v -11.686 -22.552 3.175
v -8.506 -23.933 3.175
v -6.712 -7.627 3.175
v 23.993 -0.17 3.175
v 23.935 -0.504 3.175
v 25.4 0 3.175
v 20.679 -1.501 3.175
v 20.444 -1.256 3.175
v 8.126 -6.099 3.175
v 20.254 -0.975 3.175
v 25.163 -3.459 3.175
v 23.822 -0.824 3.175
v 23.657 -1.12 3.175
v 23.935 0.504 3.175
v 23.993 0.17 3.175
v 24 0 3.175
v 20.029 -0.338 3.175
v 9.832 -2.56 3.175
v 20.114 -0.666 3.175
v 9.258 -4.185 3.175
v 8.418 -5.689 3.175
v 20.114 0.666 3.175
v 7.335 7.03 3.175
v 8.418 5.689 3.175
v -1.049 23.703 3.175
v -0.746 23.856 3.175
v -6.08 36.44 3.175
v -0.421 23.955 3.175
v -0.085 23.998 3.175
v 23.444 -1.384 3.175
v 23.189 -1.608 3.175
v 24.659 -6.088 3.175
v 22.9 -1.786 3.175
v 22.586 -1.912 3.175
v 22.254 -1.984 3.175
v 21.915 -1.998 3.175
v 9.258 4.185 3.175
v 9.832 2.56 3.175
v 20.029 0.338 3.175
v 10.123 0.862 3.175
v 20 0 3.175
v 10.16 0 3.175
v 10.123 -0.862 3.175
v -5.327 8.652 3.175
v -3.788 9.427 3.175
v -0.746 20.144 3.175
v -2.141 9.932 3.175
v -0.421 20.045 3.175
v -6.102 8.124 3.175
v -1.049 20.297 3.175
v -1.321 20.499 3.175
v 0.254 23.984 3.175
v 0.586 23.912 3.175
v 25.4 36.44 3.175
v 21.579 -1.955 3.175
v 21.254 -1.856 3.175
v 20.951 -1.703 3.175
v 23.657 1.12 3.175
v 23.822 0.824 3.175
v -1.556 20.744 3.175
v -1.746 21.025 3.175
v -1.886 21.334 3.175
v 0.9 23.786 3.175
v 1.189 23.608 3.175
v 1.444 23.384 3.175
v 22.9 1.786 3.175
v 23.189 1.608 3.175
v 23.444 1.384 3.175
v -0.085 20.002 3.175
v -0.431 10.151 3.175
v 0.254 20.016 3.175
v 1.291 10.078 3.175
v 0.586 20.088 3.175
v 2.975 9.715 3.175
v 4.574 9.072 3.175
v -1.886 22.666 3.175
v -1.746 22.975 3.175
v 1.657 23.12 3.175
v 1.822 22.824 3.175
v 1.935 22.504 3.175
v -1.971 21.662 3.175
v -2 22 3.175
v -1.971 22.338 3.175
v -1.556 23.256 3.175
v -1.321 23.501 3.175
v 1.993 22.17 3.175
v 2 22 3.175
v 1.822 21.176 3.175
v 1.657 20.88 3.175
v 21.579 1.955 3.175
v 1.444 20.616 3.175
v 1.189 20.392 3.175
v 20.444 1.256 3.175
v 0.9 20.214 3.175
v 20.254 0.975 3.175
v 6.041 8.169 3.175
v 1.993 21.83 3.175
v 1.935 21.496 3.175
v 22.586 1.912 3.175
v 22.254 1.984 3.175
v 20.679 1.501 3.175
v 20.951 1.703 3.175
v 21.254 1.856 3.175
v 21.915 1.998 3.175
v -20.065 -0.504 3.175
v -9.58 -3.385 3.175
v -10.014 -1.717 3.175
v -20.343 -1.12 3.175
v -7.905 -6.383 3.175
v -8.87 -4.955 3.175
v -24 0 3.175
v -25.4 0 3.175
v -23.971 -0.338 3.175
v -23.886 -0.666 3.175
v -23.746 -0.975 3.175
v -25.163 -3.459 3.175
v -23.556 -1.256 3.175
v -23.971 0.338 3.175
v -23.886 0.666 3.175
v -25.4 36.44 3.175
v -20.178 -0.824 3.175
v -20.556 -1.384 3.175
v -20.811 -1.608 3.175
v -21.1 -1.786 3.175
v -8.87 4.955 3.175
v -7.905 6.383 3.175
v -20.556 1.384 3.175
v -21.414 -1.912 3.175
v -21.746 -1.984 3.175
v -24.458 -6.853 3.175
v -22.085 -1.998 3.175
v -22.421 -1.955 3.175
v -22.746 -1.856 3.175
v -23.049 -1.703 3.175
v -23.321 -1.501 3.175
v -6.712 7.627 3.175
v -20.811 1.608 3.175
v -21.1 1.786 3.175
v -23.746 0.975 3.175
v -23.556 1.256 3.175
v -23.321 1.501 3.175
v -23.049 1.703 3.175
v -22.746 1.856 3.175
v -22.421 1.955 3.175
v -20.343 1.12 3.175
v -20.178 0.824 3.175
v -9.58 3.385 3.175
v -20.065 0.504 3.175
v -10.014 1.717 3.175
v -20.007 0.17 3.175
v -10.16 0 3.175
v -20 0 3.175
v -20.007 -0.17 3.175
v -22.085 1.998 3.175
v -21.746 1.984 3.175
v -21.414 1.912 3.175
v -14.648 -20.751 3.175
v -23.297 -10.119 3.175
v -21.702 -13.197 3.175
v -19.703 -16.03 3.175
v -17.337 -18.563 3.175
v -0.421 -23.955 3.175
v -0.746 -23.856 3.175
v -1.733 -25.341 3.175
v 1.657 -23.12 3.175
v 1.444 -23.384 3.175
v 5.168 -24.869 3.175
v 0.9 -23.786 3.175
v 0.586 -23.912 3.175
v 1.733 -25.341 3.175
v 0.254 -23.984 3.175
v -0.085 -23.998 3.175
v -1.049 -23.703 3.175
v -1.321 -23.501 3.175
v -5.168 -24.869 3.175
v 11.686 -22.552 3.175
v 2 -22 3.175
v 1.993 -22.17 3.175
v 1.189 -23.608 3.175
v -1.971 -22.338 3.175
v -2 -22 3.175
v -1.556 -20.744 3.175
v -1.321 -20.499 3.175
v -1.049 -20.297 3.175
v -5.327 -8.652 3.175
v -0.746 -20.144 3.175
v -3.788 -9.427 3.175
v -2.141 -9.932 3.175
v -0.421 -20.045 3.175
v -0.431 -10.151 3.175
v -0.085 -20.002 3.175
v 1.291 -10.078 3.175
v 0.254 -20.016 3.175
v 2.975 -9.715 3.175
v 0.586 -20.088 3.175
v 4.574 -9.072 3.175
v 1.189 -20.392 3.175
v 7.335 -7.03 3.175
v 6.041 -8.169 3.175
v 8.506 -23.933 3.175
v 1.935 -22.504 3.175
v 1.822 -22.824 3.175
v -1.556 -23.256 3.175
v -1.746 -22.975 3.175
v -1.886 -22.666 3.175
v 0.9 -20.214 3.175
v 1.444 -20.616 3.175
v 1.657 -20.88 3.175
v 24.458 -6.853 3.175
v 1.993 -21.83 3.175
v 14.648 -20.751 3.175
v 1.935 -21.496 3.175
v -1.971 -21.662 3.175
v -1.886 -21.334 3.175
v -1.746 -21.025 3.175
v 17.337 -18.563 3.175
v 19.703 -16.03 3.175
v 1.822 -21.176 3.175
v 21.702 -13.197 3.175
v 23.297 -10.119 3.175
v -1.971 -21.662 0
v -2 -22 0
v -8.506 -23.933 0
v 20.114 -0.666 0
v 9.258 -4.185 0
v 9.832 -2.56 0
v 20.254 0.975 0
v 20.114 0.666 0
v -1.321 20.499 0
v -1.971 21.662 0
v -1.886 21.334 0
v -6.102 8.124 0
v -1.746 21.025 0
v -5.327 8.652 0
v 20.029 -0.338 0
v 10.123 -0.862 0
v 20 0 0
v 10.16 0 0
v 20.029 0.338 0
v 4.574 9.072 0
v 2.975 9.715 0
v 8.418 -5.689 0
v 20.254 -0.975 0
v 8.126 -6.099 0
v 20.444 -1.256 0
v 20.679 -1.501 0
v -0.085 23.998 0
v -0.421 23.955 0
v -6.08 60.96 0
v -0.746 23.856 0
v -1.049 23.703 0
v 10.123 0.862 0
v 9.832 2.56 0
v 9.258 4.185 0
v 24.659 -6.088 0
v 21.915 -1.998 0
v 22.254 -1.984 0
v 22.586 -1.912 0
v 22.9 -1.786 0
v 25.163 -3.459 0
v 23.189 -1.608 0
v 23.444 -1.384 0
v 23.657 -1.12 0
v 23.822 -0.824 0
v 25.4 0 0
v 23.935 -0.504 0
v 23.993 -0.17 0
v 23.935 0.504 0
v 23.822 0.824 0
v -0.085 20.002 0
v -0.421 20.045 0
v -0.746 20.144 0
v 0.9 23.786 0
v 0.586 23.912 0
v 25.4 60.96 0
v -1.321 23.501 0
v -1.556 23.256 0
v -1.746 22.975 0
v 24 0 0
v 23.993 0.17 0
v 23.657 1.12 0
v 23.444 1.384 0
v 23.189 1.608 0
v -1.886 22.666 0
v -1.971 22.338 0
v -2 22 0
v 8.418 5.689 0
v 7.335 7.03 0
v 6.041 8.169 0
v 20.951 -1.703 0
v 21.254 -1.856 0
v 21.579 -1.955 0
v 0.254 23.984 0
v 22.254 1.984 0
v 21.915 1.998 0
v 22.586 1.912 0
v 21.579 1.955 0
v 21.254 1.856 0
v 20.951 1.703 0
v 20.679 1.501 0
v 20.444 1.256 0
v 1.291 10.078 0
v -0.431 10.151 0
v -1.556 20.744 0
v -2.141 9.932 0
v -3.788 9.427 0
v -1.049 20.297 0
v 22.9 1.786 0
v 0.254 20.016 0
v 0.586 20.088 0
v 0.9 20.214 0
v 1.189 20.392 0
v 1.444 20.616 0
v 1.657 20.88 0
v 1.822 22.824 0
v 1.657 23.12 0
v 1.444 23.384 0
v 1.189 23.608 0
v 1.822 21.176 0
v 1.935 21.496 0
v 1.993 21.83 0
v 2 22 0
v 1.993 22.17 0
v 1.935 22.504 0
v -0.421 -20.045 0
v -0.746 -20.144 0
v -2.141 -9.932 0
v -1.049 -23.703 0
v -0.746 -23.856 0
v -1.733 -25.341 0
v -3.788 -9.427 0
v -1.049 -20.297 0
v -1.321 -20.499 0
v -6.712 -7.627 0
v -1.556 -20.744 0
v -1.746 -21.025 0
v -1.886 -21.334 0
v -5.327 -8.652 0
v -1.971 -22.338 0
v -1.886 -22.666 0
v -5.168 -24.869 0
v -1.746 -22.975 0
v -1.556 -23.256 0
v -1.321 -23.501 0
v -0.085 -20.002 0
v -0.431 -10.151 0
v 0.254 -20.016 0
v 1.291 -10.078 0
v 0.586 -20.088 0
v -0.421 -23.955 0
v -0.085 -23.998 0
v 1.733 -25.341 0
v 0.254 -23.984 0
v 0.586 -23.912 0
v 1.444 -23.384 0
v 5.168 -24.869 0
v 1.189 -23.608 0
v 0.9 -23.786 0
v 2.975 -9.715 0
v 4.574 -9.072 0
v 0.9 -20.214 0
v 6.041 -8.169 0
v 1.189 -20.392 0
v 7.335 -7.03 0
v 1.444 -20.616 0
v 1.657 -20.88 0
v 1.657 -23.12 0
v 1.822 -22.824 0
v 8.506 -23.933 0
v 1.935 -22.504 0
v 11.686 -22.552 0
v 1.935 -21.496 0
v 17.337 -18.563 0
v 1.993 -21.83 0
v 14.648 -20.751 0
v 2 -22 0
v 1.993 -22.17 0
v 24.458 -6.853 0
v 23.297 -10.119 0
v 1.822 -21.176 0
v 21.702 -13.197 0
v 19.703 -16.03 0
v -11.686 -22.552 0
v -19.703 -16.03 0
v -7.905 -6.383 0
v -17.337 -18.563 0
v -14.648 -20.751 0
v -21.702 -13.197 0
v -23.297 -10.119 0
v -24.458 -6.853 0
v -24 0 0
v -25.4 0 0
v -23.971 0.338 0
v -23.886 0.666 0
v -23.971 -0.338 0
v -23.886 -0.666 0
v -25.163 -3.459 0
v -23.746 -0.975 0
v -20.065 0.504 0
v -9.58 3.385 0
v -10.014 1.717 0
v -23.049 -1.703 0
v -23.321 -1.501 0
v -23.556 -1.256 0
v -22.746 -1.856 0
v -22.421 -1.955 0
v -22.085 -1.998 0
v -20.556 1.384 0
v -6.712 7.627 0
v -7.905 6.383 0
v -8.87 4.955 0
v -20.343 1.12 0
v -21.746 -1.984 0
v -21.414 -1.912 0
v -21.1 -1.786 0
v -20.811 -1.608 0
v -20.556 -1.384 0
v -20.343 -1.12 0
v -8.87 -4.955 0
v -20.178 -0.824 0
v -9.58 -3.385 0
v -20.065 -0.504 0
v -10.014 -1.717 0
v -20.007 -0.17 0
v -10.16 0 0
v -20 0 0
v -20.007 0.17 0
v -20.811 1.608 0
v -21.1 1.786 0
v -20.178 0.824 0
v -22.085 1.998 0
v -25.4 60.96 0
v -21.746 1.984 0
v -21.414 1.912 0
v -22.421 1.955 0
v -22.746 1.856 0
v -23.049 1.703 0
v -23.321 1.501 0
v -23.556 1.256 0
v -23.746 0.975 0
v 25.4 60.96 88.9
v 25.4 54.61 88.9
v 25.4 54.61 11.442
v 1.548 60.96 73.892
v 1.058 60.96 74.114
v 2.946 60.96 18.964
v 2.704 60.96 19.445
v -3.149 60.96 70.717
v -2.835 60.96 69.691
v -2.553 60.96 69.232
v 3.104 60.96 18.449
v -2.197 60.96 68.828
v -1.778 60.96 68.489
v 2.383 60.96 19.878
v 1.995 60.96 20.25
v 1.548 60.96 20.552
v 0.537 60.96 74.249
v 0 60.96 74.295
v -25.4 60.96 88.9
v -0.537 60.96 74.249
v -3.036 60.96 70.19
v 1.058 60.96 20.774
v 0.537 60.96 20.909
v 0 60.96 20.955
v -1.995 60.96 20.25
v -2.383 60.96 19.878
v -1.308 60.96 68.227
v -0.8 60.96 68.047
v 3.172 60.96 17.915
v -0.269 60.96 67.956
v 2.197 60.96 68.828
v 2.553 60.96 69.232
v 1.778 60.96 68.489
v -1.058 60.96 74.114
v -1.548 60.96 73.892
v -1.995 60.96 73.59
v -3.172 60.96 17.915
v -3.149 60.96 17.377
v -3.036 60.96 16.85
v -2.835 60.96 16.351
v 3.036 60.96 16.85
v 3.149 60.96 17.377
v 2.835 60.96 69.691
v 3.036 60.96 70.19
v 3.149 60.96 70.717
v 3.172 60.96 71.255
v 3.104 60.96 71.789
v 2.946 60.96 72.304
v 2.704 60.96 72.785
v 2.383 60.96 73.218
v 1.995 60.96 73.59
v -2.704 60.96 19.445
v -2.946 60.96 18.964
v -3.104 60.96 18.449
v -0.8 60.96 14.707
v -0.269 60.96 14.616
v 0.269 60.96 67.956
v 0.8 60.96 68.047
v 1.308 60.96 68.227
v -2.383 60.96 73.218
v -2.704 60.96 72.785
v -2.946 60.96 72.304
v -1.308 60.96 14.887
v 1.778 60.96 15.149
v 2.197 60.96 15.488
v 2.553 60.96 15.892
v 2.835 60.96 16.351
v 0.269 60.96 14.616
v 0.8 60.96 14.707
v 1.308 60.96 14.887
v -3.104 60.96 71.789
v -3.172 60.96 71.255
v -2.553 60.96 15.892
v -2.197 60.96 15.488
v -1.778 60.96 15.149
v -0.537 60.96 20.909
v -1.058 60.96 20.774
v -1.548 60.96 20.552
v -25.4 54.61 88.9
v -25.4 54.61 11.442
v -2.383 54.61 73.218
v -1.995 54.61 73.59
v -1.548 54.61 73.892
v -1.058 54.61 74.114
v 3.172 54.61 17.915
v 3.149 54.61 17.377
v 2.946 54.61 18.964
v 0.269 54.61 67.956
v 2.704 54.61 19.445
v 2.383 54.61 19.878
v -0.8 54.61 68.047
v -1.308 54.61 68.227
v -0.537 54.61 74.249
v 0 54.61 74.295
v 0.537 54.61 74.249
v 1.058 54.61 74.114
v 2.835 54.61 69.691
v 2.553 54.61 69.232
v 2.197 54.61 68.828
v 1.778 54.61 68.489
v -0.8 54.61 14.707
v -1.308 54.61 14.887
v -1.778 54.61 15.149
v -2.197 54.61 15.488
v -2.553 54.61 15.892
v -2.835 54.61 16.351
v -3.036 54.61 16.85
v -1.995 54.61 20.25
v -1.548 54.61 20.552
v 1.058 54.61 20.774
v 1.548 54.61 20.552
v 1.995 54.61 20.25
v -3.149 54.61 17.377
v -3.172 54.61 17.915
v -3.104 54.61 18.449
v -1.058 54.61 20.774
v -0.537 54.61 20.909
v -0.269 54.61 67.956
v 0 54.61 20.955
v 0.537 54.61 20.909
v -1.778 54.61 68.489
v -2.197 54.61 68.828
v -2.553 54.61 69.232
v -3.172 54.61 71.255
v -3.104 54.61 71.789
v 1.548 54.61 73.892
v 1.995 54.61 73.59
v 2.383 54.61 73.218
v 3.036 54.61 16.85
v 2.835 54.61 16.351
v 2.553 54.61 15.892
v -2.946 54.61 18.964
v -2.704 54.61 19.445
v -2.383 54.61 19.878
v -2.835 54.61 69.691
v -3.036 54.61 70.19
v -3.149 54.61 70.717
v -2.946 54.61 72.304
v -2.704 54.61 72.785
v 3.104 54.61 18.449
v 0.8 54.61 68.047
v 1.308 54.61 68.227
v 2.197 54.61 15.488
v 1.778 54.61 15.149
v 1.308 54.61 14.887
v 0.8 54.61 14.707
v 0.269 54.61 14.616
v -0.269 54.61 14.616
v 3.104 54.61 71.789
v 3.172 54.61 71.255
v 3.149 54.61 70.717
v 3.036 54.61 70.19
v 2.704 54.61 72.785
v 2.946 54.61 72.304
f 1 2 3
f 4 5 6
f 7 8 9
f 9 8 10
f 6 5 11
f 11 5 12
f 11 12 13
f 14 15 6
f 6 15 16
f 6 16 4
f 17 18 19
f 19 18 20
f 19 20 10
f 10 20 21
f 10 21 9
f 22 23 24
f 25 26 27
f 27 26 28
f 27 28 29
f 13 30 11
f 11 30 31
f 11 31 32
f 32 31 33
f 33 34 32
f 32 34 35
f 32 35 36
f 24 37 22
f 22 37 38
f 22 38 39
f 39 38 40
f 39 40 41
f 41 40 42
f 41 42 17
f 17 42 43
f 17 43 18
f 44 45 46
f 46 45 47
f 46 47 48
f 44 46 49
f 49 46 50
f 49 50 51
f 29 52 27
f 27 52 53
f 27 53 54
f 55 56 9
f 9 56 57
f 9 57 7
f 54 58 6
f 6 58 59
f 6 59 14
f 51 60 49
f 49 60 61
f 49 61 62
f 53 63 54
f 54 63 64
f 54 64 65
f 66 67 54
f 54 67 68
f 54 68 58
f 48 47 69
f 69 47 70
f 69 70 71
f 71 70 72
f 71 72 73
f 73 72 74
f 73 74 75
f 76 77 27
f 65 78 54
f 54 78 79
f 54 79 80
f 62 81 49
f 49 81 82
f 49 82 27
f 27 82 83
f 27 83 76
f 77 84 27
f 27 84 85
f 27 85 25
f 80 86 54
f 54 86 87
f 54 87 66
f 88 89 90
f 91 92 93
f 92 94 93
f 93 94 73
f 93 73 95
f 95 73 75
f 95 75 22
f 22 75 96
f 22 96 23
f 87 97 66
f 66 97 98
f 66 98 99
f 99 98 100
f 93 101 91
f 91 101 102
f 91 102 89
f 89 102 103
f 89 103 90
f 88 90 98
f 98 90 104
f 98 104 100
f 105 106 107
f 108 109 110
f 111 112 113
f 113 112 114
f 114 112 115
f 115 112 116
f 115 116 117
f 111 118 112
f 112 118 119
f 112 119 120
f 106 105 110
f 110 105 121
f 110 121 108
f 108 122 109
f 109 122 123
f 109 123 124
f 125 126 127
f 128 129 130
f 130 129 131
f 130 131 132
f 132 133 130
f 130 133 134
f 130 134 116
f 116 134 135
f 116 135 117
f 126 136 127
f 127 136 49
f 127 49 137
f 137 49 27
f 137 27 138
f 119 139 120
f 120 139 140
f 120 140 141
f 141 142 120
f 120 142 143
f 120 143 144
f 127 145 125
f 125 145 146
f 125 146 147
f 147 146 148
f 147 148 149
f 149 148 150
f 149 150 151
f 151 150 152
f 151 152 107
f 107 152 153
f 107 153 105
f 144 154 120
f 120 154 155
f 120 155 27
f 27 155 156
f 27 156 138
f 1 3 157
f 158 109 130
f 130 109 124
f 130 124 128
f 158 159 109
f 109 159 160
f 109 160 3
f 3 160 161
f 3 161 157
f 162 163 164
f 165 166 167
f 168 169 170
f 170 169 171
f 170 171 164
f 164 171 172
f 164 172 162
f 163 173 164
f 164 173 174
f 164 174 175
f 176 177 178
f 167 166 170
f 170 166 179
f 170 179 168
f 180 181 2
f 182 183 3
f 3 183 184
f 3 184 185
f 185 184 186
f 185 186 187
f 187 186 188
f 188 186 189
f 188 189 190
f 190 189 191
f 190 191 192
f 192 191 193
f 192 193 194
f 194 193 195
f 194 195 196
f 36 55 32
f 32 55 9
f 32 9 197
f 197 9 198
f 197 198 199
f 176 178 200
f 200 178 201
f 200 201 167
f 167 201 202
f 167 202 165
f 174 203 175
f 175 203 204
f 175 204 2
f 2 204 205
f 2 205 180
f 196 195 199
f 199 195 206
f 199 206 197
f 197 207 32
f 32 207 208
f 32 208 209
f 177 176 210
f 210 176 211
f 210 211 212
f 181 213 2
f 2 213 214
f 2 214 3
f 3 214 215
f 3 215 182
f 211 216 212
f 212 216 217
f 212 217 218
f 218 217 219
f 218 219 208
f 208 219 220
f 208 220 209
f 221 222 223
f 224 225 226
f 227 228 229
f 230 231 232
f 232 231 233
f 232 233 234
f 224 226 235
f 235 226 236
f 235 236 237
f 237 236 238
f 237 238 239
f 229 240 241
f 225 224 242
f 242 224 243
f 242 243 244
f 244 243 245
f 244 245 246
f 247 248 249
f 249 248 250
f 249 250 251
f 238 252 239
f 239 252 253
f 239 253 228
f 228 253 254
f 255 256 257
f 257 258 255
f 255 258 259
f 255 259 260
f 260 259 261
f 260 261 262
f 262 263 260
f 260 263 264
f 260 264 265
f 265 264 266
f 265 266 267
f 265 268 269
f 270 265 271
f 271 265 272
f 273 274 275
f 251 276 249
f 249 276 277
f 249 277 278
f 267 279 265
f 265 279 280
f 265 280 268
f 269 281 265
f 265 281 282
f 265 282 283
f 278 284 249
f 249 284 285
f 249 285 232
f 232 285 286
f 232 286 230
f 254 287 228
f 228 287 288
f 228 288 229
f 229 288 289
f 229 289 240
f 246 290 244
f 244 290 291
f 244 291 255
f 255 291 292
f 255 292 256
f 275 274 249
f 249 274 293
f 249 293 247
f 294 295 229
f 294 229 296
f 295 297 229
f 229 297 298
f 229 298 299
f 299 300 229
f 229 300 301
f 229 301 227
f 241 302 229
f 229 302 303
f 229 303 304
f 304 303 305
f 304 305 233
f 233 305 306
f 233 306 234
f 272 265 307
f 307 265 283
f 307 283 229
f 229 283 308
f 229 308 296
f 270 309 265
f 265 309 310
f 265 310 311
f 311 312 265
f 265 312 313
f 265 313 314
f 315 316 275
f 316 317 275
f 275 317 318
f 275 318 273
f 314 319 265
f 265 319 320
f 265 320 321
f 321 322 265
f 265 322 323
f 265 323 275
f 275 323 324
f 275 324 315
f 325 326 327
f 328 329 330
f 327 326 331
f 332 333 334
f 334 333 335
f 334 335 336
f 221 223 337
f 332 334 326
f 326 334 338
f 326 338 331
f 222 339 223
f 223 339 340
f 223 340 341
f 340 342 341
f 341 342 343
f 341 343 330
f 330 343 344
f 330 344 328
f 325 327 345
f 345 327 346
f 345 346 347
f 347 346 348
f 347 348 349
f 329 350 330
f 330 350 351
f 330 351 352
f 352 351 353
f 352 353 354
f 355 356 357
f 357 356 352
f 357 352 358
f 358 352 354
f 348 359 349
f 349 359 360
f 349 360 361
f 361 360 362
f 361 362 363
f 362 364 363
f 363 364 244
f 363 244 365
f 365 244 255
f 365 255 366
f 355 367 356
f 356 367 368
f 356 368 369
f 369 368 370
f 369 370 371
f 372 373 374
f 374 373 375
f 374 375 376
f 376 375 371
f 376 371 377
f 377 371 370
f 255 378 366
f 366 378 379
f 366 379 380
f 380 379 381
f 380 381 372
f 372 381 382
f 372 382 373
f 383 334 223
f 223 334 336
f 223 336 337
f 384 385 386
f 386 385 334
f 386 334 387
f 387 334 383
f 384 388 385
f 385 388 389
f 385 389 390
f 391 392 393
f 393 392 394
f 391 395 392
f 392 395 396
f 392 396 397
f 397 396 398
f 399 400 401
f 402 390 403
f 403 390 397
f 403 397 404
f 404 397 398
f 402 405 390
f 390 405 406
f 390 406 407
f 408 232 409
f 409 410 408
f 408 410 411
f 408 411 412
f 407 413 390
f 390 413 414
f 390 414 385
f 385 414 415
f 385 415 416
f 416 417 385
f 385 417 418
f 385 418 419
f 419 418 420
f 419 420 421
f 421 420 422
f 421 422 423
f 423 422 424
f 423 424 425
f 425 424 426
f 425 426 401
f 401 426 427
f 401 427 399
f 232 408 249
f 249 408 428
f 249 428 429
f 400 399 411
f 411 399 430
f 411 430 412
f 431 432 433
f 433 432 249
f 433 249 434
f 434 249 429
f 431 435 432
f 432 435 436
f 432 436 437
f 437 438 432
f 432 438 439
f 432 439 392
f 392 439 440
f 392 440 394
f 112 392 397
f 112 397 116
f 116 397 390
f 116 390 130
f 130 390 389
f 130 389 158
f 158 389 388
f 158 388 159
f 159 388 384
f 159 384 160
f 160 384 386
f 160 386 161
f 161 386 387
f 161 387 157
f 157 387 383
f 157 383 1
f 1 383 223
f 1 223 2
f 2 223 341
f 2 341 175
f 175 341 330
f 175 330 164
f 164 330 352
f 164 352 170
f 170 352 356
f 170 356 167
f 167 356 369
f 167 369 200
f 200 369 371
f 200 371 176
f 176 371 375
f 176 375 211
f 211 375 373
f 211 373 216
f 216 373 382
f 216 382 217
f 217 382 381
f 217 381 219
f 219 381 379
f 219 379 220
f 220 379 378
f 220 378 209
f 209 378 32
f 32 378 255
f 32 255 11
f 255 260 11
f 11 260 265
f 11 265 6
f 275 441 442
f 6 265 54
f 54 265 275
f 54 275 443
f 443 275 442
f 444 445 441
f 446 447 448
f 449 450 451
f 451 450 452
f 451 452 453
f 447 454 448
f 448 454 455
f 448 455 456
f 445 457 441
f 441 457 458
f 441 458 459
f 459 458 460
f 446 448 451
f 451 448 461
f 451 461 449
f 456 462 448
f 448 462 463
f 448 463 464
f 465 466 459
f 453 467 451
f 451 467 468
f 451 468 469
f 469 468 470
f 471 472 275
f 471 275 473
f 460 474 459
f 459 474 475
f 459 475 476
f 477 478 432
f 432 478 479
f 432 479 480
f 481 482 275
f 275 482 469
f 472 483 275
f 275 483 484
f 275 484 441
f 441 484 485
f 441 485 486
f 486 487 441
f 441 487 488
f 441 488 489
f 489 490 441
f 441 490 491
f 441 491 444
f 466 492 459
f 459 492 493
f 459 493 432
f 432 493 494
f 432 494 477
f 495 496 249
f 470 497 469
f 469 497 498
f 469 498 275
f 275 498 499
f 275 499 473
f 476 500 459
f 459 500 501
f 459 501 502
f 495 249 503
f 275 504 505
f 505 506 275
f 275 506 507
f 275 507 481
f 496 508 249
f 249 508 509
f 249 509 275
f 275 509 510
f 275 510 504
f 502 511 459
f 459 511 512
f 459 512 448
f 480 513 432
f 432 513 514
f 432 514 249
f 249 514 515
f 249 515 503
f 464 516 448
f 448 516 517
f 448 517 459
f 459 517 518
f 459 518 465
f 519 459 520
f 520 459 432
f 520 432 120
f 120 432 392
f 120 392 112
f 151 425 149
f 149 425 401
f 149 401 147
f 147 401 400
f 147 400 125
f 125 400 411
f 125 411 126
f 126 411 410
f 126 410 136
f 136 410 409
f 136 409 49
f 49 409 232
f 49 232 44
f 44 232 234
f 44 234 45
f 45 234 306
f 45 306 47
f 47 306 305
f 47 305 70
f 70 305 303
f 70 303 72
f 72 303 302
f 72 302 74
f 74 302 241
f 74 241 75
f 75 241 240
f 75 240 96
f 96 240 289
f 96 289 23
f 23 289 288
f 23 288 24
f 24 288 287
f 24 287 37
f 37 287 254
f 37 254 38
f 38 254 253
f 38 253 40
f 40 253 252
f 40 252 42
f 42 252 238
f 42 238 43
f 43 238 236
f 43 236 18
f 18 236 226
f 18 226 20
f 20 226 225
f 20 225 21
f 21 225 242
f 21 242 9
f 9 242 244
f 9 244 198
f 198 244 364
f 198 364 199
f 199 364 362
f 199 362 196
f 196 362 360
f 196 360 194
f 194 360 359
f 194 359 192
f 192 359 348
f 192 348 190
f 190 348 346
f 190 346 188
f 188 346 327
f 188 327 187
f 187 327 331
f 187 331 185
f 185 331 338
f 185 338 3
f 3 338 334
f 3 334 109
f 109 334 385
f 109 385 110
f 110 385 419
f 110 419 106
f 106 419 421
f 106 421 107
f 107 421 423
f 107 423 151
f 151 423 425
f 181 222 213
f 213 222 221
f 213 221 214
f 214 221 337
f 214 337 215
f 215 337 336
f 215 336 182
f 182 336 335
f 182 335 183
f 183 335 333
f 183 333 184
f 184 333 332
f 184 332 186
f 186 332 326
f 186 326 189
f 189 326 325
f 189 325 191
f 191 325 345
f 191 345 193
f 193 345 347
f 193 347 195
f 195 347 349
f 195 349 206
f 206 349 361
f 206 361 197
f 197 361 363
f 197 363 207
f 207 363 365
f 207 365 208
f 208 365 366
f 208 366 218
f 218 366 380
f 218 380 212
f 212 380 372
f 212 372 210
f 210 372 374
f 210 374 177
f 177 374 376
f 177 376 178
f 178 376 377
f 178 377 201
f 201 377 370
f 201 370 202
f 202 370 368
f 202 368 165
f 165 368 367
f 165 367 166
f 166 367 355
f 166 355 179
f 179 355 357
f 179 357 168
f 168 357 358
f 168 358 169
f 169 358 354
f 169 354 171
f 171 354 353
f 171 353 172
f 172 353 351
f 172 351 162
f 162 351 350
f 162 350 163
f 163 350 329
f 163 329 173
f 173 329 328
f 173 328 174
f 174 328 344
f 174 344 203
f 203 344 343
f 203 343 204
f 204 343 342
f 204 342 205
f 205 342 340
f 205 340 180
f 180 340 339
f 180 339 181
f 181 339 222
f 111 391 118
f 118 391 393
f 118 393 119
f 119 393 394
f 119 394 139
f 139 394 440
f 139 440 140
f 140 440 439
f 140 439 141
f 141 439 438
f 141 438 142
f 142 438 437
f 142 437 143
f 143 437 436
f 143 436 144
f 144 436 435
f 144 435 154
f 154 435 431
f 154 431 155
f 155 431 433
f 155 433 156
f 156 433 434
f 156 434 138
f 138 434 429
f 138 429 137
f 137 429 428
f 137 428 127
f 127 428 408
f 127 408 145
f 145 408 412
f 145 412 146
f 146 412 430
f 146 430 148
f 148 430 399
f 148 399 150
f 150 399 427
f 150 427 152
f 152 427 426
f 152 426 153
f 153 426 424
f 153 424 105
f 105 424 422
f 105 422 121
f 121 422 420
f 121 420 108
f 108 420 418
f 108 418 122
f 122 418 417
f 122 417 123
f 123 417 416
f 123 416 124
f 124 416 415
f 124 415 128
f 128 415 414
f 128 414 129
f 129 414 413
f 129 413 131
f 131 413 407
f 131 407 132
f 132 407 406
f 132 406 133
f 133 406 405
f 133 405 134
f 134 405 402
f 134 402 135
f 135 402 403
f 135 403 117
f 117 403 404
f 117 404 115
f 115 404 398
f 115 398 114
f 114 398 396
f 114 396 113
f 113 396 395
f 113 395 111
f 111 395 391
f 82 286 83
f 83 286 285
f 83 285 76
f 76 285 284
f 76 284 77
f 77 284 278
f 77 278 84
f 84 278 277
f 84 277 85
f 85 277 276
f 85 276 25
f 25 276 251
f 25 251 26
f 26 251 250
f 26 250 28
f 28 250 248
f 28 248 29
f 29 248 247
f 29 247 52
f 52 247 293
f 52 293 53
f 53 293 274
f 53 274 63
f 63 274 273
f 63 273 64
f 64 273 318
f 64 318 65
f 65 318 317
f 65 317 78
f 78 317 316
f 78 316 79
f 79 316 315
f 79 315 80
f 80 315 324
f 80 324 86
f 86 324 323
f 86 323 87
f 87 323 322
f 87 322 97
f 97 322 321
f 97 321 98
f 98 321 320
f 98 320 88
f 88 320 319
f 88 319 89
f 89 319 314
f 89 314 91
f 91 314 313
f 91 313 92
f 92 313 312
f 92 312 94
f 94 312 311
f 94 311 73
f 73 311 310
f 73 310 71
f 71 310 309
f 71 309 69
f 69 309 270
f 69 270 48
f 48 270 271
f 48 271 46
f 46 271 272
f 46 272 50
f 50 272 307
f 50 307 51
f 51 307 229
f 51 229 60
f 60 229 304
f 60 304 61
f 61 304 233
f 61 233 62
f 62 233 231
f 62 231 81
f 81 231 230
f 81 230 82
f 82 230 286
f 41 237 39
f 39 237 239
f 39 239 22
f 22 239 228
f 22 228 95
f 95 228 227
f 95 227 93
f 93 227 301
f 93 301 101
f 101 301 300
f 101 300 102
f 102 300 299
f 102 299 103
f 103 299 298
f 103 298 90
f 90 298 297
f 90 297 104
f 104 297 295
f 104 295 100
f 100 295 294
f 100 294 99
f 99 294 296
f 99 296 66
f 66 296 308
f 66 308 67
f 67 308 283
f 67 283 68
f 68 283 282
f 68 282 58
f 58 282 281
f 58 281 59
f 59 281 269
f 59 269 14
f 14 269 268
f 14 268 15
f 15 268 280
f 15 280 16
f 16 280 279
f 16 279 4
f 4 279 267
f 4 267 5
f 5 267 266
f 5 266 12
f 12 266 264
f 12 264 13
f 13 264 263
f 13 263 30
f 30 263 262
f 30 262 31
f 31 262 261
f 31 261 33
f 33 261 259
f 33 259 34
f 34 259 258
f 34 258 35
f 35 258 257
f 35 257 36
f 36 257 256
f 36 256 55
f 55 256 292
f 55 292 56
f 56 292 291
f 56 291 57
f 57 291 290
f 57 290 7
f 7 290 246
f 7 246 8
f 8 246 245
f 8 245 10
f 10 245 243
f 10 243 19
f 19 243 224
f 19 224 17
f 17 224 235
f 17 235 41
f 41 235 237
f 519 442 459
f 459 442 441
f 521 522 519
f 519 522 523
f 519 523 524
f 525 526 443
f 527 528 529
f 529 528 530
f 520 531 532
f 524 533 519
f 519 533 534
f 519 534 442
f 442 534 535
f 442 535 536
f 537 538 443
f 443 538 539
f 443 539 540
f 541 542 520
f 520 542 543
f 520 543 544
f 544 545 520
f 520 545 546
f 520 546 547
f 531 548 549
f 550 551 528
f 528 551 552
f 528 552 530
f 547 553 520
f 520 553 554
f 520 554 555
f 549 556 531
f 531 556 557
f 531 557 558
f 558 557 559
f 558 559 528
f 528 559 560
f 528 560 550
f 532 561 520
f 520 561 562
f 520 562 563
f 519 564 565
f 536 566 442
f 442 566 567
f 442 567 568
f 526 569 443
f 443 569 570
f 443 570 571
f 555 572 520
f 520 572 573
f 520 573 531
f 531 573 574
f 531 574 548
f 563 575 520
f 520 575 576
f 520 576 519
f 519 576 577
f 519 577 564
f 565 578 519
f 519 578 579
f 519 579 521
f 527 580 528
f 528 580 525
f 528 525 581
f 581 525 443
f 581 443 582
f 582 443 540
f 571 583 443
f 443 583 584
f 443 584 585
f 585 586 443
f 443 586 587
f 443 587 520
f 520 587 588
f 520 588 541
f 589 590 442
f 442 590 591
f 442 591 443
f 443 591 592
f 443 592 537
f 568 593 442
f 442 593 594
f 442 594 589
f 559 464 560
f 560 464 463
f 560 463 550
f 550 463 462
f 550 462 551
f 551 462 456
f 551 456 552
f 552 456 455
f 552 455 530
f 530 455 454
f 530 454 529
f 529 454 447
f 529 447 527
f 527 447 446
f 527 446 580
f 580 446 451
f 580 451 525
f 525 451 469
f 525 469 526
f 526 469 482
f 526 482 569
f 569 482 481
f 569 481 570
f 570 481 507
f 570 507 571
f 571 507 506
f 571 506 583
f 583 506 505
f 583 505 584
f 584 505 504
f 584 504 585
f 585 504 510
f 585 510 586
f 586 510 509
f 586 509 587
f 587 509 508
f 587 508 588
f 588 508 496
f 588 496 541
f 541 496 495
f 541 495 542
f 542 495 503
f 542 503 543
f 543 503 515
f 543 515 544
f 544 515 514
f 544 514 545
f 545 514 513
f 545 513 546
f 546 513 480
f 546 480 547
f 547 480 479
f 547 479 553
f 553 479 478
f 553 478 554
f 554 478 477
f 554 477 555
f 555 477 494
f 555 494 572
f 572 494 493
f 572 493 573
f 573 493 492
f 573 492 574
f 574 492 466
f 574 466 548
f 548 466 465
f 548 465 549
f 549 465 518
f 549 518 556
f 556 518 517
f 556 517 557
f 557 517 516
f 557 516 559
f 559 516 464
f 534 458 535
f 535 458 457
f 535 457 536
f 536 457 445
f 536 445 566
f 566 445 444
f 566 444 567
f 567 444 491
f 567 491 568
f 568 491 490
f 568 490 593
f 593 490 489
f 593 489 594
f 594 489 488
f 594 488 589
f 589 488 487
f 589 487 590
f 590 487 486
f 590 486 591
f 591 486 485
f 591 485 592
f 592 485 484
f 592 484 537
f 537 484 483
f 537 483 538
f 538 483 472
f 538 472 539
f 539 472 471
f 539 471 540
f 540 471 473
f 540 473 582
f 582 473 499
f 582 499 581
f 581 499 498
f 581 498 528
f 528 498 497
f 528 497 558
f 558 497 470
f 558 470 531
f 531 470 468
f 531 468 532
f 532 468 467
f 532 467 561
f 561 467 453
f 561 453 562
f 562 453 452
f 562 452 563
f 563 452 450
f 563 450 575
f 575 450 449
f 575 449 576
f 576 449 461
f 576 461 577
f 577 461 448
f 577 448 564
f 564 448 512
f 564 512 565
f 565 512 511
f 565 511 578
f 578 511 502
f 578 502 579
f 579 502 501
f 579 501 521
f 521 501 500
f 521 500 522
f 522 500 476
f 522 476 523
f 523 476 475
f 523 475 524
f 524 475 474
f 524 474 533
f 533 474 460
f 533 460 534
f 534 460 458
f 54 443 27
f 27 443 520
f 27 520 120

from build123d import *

# Parameters (mm, degrees)
SKETCH1_R           = 10.16
SKETCH1_R_2         = 2
BOSS_EXTRUDE1_DEPTH = 3.175
SKETCH2_W           = 50.8
SKETCH2_H           = 88.9
SKETCH2_R           = 3.175
BOSS_EXTRUDE2_DEPTH = 6.35
BOSS_EXTRUDE3_DEPTH = 50.8


with BuildPart() as part:
    # Sketch1 → Boss-Extrude1 (new body)
    with BuildSketch(Plane.XY):
        with BuildLine():
            Line((-25.4, 0), (-25.4, 60.96))
            Line((-25.4, 60.96), (25.4, 60.96))
            Line((25.4, 60.96), (25.4, 0))
            ThreePointArc((25.4, 0), (0, -25.4), (-25.4, 0))
        make_face()
        Circle(SKETCH1_R, mode=Mode.SUBTRACT)
        with Locations((0, -22)):
            Circle(SKETCH1_R_2, mode=Mode.SUBTRACT)
        with Locations((-22, 0)):
            Circle(SKETCH1_R_2, mode=Mode.SUBTRACT)
        with Locations((0, 22)):
            Circle(SKETCH1_R_2, mode=Mode.SUBTRACT)
        with Locations((22, 0)):
            Circle(SKETCH1_R_2, mode=Mode.SUBTRACT)
    extrude(amount=BOSS_EXTRUDE1_DEPTH)

    # Sketch2 → Boss-Extrude2 (add)
    with BuildSketch(Plane(origin=(0, 60.96, 0), x_dir=(1, 0, 0), z_dir=(0, 1, 0))):
        with Locations((0, -44.45)):
            Rectangle(SKETCH2_W, SKETCH2_H)
        with Locations(Location((0, -17.78, 0), (0, 0, 270))):
            Circle(SKETCH2_R, mode=Mode.SUBTRACT)
        with Locations(Location((0, -71.12, 0), (0, 0, 270))):
            Circle(SKETCH2_R, mode=Mode.SUBTRACT)
    extrude(amount=-BOSS_EXTRUDE2_DEPTH)

    # Sketch3 → Boss-Extrude3 (add)
    with BuildSketch(Plane.ZY.offset(25.4)):
        Polygon((11.441642041, 54.61), (3.175, 36.439571989), (3.175, 54.61), align=None)
    extrude(amount=-BOSS_EXTRUDE3_DEPTH)


solid = part.part
